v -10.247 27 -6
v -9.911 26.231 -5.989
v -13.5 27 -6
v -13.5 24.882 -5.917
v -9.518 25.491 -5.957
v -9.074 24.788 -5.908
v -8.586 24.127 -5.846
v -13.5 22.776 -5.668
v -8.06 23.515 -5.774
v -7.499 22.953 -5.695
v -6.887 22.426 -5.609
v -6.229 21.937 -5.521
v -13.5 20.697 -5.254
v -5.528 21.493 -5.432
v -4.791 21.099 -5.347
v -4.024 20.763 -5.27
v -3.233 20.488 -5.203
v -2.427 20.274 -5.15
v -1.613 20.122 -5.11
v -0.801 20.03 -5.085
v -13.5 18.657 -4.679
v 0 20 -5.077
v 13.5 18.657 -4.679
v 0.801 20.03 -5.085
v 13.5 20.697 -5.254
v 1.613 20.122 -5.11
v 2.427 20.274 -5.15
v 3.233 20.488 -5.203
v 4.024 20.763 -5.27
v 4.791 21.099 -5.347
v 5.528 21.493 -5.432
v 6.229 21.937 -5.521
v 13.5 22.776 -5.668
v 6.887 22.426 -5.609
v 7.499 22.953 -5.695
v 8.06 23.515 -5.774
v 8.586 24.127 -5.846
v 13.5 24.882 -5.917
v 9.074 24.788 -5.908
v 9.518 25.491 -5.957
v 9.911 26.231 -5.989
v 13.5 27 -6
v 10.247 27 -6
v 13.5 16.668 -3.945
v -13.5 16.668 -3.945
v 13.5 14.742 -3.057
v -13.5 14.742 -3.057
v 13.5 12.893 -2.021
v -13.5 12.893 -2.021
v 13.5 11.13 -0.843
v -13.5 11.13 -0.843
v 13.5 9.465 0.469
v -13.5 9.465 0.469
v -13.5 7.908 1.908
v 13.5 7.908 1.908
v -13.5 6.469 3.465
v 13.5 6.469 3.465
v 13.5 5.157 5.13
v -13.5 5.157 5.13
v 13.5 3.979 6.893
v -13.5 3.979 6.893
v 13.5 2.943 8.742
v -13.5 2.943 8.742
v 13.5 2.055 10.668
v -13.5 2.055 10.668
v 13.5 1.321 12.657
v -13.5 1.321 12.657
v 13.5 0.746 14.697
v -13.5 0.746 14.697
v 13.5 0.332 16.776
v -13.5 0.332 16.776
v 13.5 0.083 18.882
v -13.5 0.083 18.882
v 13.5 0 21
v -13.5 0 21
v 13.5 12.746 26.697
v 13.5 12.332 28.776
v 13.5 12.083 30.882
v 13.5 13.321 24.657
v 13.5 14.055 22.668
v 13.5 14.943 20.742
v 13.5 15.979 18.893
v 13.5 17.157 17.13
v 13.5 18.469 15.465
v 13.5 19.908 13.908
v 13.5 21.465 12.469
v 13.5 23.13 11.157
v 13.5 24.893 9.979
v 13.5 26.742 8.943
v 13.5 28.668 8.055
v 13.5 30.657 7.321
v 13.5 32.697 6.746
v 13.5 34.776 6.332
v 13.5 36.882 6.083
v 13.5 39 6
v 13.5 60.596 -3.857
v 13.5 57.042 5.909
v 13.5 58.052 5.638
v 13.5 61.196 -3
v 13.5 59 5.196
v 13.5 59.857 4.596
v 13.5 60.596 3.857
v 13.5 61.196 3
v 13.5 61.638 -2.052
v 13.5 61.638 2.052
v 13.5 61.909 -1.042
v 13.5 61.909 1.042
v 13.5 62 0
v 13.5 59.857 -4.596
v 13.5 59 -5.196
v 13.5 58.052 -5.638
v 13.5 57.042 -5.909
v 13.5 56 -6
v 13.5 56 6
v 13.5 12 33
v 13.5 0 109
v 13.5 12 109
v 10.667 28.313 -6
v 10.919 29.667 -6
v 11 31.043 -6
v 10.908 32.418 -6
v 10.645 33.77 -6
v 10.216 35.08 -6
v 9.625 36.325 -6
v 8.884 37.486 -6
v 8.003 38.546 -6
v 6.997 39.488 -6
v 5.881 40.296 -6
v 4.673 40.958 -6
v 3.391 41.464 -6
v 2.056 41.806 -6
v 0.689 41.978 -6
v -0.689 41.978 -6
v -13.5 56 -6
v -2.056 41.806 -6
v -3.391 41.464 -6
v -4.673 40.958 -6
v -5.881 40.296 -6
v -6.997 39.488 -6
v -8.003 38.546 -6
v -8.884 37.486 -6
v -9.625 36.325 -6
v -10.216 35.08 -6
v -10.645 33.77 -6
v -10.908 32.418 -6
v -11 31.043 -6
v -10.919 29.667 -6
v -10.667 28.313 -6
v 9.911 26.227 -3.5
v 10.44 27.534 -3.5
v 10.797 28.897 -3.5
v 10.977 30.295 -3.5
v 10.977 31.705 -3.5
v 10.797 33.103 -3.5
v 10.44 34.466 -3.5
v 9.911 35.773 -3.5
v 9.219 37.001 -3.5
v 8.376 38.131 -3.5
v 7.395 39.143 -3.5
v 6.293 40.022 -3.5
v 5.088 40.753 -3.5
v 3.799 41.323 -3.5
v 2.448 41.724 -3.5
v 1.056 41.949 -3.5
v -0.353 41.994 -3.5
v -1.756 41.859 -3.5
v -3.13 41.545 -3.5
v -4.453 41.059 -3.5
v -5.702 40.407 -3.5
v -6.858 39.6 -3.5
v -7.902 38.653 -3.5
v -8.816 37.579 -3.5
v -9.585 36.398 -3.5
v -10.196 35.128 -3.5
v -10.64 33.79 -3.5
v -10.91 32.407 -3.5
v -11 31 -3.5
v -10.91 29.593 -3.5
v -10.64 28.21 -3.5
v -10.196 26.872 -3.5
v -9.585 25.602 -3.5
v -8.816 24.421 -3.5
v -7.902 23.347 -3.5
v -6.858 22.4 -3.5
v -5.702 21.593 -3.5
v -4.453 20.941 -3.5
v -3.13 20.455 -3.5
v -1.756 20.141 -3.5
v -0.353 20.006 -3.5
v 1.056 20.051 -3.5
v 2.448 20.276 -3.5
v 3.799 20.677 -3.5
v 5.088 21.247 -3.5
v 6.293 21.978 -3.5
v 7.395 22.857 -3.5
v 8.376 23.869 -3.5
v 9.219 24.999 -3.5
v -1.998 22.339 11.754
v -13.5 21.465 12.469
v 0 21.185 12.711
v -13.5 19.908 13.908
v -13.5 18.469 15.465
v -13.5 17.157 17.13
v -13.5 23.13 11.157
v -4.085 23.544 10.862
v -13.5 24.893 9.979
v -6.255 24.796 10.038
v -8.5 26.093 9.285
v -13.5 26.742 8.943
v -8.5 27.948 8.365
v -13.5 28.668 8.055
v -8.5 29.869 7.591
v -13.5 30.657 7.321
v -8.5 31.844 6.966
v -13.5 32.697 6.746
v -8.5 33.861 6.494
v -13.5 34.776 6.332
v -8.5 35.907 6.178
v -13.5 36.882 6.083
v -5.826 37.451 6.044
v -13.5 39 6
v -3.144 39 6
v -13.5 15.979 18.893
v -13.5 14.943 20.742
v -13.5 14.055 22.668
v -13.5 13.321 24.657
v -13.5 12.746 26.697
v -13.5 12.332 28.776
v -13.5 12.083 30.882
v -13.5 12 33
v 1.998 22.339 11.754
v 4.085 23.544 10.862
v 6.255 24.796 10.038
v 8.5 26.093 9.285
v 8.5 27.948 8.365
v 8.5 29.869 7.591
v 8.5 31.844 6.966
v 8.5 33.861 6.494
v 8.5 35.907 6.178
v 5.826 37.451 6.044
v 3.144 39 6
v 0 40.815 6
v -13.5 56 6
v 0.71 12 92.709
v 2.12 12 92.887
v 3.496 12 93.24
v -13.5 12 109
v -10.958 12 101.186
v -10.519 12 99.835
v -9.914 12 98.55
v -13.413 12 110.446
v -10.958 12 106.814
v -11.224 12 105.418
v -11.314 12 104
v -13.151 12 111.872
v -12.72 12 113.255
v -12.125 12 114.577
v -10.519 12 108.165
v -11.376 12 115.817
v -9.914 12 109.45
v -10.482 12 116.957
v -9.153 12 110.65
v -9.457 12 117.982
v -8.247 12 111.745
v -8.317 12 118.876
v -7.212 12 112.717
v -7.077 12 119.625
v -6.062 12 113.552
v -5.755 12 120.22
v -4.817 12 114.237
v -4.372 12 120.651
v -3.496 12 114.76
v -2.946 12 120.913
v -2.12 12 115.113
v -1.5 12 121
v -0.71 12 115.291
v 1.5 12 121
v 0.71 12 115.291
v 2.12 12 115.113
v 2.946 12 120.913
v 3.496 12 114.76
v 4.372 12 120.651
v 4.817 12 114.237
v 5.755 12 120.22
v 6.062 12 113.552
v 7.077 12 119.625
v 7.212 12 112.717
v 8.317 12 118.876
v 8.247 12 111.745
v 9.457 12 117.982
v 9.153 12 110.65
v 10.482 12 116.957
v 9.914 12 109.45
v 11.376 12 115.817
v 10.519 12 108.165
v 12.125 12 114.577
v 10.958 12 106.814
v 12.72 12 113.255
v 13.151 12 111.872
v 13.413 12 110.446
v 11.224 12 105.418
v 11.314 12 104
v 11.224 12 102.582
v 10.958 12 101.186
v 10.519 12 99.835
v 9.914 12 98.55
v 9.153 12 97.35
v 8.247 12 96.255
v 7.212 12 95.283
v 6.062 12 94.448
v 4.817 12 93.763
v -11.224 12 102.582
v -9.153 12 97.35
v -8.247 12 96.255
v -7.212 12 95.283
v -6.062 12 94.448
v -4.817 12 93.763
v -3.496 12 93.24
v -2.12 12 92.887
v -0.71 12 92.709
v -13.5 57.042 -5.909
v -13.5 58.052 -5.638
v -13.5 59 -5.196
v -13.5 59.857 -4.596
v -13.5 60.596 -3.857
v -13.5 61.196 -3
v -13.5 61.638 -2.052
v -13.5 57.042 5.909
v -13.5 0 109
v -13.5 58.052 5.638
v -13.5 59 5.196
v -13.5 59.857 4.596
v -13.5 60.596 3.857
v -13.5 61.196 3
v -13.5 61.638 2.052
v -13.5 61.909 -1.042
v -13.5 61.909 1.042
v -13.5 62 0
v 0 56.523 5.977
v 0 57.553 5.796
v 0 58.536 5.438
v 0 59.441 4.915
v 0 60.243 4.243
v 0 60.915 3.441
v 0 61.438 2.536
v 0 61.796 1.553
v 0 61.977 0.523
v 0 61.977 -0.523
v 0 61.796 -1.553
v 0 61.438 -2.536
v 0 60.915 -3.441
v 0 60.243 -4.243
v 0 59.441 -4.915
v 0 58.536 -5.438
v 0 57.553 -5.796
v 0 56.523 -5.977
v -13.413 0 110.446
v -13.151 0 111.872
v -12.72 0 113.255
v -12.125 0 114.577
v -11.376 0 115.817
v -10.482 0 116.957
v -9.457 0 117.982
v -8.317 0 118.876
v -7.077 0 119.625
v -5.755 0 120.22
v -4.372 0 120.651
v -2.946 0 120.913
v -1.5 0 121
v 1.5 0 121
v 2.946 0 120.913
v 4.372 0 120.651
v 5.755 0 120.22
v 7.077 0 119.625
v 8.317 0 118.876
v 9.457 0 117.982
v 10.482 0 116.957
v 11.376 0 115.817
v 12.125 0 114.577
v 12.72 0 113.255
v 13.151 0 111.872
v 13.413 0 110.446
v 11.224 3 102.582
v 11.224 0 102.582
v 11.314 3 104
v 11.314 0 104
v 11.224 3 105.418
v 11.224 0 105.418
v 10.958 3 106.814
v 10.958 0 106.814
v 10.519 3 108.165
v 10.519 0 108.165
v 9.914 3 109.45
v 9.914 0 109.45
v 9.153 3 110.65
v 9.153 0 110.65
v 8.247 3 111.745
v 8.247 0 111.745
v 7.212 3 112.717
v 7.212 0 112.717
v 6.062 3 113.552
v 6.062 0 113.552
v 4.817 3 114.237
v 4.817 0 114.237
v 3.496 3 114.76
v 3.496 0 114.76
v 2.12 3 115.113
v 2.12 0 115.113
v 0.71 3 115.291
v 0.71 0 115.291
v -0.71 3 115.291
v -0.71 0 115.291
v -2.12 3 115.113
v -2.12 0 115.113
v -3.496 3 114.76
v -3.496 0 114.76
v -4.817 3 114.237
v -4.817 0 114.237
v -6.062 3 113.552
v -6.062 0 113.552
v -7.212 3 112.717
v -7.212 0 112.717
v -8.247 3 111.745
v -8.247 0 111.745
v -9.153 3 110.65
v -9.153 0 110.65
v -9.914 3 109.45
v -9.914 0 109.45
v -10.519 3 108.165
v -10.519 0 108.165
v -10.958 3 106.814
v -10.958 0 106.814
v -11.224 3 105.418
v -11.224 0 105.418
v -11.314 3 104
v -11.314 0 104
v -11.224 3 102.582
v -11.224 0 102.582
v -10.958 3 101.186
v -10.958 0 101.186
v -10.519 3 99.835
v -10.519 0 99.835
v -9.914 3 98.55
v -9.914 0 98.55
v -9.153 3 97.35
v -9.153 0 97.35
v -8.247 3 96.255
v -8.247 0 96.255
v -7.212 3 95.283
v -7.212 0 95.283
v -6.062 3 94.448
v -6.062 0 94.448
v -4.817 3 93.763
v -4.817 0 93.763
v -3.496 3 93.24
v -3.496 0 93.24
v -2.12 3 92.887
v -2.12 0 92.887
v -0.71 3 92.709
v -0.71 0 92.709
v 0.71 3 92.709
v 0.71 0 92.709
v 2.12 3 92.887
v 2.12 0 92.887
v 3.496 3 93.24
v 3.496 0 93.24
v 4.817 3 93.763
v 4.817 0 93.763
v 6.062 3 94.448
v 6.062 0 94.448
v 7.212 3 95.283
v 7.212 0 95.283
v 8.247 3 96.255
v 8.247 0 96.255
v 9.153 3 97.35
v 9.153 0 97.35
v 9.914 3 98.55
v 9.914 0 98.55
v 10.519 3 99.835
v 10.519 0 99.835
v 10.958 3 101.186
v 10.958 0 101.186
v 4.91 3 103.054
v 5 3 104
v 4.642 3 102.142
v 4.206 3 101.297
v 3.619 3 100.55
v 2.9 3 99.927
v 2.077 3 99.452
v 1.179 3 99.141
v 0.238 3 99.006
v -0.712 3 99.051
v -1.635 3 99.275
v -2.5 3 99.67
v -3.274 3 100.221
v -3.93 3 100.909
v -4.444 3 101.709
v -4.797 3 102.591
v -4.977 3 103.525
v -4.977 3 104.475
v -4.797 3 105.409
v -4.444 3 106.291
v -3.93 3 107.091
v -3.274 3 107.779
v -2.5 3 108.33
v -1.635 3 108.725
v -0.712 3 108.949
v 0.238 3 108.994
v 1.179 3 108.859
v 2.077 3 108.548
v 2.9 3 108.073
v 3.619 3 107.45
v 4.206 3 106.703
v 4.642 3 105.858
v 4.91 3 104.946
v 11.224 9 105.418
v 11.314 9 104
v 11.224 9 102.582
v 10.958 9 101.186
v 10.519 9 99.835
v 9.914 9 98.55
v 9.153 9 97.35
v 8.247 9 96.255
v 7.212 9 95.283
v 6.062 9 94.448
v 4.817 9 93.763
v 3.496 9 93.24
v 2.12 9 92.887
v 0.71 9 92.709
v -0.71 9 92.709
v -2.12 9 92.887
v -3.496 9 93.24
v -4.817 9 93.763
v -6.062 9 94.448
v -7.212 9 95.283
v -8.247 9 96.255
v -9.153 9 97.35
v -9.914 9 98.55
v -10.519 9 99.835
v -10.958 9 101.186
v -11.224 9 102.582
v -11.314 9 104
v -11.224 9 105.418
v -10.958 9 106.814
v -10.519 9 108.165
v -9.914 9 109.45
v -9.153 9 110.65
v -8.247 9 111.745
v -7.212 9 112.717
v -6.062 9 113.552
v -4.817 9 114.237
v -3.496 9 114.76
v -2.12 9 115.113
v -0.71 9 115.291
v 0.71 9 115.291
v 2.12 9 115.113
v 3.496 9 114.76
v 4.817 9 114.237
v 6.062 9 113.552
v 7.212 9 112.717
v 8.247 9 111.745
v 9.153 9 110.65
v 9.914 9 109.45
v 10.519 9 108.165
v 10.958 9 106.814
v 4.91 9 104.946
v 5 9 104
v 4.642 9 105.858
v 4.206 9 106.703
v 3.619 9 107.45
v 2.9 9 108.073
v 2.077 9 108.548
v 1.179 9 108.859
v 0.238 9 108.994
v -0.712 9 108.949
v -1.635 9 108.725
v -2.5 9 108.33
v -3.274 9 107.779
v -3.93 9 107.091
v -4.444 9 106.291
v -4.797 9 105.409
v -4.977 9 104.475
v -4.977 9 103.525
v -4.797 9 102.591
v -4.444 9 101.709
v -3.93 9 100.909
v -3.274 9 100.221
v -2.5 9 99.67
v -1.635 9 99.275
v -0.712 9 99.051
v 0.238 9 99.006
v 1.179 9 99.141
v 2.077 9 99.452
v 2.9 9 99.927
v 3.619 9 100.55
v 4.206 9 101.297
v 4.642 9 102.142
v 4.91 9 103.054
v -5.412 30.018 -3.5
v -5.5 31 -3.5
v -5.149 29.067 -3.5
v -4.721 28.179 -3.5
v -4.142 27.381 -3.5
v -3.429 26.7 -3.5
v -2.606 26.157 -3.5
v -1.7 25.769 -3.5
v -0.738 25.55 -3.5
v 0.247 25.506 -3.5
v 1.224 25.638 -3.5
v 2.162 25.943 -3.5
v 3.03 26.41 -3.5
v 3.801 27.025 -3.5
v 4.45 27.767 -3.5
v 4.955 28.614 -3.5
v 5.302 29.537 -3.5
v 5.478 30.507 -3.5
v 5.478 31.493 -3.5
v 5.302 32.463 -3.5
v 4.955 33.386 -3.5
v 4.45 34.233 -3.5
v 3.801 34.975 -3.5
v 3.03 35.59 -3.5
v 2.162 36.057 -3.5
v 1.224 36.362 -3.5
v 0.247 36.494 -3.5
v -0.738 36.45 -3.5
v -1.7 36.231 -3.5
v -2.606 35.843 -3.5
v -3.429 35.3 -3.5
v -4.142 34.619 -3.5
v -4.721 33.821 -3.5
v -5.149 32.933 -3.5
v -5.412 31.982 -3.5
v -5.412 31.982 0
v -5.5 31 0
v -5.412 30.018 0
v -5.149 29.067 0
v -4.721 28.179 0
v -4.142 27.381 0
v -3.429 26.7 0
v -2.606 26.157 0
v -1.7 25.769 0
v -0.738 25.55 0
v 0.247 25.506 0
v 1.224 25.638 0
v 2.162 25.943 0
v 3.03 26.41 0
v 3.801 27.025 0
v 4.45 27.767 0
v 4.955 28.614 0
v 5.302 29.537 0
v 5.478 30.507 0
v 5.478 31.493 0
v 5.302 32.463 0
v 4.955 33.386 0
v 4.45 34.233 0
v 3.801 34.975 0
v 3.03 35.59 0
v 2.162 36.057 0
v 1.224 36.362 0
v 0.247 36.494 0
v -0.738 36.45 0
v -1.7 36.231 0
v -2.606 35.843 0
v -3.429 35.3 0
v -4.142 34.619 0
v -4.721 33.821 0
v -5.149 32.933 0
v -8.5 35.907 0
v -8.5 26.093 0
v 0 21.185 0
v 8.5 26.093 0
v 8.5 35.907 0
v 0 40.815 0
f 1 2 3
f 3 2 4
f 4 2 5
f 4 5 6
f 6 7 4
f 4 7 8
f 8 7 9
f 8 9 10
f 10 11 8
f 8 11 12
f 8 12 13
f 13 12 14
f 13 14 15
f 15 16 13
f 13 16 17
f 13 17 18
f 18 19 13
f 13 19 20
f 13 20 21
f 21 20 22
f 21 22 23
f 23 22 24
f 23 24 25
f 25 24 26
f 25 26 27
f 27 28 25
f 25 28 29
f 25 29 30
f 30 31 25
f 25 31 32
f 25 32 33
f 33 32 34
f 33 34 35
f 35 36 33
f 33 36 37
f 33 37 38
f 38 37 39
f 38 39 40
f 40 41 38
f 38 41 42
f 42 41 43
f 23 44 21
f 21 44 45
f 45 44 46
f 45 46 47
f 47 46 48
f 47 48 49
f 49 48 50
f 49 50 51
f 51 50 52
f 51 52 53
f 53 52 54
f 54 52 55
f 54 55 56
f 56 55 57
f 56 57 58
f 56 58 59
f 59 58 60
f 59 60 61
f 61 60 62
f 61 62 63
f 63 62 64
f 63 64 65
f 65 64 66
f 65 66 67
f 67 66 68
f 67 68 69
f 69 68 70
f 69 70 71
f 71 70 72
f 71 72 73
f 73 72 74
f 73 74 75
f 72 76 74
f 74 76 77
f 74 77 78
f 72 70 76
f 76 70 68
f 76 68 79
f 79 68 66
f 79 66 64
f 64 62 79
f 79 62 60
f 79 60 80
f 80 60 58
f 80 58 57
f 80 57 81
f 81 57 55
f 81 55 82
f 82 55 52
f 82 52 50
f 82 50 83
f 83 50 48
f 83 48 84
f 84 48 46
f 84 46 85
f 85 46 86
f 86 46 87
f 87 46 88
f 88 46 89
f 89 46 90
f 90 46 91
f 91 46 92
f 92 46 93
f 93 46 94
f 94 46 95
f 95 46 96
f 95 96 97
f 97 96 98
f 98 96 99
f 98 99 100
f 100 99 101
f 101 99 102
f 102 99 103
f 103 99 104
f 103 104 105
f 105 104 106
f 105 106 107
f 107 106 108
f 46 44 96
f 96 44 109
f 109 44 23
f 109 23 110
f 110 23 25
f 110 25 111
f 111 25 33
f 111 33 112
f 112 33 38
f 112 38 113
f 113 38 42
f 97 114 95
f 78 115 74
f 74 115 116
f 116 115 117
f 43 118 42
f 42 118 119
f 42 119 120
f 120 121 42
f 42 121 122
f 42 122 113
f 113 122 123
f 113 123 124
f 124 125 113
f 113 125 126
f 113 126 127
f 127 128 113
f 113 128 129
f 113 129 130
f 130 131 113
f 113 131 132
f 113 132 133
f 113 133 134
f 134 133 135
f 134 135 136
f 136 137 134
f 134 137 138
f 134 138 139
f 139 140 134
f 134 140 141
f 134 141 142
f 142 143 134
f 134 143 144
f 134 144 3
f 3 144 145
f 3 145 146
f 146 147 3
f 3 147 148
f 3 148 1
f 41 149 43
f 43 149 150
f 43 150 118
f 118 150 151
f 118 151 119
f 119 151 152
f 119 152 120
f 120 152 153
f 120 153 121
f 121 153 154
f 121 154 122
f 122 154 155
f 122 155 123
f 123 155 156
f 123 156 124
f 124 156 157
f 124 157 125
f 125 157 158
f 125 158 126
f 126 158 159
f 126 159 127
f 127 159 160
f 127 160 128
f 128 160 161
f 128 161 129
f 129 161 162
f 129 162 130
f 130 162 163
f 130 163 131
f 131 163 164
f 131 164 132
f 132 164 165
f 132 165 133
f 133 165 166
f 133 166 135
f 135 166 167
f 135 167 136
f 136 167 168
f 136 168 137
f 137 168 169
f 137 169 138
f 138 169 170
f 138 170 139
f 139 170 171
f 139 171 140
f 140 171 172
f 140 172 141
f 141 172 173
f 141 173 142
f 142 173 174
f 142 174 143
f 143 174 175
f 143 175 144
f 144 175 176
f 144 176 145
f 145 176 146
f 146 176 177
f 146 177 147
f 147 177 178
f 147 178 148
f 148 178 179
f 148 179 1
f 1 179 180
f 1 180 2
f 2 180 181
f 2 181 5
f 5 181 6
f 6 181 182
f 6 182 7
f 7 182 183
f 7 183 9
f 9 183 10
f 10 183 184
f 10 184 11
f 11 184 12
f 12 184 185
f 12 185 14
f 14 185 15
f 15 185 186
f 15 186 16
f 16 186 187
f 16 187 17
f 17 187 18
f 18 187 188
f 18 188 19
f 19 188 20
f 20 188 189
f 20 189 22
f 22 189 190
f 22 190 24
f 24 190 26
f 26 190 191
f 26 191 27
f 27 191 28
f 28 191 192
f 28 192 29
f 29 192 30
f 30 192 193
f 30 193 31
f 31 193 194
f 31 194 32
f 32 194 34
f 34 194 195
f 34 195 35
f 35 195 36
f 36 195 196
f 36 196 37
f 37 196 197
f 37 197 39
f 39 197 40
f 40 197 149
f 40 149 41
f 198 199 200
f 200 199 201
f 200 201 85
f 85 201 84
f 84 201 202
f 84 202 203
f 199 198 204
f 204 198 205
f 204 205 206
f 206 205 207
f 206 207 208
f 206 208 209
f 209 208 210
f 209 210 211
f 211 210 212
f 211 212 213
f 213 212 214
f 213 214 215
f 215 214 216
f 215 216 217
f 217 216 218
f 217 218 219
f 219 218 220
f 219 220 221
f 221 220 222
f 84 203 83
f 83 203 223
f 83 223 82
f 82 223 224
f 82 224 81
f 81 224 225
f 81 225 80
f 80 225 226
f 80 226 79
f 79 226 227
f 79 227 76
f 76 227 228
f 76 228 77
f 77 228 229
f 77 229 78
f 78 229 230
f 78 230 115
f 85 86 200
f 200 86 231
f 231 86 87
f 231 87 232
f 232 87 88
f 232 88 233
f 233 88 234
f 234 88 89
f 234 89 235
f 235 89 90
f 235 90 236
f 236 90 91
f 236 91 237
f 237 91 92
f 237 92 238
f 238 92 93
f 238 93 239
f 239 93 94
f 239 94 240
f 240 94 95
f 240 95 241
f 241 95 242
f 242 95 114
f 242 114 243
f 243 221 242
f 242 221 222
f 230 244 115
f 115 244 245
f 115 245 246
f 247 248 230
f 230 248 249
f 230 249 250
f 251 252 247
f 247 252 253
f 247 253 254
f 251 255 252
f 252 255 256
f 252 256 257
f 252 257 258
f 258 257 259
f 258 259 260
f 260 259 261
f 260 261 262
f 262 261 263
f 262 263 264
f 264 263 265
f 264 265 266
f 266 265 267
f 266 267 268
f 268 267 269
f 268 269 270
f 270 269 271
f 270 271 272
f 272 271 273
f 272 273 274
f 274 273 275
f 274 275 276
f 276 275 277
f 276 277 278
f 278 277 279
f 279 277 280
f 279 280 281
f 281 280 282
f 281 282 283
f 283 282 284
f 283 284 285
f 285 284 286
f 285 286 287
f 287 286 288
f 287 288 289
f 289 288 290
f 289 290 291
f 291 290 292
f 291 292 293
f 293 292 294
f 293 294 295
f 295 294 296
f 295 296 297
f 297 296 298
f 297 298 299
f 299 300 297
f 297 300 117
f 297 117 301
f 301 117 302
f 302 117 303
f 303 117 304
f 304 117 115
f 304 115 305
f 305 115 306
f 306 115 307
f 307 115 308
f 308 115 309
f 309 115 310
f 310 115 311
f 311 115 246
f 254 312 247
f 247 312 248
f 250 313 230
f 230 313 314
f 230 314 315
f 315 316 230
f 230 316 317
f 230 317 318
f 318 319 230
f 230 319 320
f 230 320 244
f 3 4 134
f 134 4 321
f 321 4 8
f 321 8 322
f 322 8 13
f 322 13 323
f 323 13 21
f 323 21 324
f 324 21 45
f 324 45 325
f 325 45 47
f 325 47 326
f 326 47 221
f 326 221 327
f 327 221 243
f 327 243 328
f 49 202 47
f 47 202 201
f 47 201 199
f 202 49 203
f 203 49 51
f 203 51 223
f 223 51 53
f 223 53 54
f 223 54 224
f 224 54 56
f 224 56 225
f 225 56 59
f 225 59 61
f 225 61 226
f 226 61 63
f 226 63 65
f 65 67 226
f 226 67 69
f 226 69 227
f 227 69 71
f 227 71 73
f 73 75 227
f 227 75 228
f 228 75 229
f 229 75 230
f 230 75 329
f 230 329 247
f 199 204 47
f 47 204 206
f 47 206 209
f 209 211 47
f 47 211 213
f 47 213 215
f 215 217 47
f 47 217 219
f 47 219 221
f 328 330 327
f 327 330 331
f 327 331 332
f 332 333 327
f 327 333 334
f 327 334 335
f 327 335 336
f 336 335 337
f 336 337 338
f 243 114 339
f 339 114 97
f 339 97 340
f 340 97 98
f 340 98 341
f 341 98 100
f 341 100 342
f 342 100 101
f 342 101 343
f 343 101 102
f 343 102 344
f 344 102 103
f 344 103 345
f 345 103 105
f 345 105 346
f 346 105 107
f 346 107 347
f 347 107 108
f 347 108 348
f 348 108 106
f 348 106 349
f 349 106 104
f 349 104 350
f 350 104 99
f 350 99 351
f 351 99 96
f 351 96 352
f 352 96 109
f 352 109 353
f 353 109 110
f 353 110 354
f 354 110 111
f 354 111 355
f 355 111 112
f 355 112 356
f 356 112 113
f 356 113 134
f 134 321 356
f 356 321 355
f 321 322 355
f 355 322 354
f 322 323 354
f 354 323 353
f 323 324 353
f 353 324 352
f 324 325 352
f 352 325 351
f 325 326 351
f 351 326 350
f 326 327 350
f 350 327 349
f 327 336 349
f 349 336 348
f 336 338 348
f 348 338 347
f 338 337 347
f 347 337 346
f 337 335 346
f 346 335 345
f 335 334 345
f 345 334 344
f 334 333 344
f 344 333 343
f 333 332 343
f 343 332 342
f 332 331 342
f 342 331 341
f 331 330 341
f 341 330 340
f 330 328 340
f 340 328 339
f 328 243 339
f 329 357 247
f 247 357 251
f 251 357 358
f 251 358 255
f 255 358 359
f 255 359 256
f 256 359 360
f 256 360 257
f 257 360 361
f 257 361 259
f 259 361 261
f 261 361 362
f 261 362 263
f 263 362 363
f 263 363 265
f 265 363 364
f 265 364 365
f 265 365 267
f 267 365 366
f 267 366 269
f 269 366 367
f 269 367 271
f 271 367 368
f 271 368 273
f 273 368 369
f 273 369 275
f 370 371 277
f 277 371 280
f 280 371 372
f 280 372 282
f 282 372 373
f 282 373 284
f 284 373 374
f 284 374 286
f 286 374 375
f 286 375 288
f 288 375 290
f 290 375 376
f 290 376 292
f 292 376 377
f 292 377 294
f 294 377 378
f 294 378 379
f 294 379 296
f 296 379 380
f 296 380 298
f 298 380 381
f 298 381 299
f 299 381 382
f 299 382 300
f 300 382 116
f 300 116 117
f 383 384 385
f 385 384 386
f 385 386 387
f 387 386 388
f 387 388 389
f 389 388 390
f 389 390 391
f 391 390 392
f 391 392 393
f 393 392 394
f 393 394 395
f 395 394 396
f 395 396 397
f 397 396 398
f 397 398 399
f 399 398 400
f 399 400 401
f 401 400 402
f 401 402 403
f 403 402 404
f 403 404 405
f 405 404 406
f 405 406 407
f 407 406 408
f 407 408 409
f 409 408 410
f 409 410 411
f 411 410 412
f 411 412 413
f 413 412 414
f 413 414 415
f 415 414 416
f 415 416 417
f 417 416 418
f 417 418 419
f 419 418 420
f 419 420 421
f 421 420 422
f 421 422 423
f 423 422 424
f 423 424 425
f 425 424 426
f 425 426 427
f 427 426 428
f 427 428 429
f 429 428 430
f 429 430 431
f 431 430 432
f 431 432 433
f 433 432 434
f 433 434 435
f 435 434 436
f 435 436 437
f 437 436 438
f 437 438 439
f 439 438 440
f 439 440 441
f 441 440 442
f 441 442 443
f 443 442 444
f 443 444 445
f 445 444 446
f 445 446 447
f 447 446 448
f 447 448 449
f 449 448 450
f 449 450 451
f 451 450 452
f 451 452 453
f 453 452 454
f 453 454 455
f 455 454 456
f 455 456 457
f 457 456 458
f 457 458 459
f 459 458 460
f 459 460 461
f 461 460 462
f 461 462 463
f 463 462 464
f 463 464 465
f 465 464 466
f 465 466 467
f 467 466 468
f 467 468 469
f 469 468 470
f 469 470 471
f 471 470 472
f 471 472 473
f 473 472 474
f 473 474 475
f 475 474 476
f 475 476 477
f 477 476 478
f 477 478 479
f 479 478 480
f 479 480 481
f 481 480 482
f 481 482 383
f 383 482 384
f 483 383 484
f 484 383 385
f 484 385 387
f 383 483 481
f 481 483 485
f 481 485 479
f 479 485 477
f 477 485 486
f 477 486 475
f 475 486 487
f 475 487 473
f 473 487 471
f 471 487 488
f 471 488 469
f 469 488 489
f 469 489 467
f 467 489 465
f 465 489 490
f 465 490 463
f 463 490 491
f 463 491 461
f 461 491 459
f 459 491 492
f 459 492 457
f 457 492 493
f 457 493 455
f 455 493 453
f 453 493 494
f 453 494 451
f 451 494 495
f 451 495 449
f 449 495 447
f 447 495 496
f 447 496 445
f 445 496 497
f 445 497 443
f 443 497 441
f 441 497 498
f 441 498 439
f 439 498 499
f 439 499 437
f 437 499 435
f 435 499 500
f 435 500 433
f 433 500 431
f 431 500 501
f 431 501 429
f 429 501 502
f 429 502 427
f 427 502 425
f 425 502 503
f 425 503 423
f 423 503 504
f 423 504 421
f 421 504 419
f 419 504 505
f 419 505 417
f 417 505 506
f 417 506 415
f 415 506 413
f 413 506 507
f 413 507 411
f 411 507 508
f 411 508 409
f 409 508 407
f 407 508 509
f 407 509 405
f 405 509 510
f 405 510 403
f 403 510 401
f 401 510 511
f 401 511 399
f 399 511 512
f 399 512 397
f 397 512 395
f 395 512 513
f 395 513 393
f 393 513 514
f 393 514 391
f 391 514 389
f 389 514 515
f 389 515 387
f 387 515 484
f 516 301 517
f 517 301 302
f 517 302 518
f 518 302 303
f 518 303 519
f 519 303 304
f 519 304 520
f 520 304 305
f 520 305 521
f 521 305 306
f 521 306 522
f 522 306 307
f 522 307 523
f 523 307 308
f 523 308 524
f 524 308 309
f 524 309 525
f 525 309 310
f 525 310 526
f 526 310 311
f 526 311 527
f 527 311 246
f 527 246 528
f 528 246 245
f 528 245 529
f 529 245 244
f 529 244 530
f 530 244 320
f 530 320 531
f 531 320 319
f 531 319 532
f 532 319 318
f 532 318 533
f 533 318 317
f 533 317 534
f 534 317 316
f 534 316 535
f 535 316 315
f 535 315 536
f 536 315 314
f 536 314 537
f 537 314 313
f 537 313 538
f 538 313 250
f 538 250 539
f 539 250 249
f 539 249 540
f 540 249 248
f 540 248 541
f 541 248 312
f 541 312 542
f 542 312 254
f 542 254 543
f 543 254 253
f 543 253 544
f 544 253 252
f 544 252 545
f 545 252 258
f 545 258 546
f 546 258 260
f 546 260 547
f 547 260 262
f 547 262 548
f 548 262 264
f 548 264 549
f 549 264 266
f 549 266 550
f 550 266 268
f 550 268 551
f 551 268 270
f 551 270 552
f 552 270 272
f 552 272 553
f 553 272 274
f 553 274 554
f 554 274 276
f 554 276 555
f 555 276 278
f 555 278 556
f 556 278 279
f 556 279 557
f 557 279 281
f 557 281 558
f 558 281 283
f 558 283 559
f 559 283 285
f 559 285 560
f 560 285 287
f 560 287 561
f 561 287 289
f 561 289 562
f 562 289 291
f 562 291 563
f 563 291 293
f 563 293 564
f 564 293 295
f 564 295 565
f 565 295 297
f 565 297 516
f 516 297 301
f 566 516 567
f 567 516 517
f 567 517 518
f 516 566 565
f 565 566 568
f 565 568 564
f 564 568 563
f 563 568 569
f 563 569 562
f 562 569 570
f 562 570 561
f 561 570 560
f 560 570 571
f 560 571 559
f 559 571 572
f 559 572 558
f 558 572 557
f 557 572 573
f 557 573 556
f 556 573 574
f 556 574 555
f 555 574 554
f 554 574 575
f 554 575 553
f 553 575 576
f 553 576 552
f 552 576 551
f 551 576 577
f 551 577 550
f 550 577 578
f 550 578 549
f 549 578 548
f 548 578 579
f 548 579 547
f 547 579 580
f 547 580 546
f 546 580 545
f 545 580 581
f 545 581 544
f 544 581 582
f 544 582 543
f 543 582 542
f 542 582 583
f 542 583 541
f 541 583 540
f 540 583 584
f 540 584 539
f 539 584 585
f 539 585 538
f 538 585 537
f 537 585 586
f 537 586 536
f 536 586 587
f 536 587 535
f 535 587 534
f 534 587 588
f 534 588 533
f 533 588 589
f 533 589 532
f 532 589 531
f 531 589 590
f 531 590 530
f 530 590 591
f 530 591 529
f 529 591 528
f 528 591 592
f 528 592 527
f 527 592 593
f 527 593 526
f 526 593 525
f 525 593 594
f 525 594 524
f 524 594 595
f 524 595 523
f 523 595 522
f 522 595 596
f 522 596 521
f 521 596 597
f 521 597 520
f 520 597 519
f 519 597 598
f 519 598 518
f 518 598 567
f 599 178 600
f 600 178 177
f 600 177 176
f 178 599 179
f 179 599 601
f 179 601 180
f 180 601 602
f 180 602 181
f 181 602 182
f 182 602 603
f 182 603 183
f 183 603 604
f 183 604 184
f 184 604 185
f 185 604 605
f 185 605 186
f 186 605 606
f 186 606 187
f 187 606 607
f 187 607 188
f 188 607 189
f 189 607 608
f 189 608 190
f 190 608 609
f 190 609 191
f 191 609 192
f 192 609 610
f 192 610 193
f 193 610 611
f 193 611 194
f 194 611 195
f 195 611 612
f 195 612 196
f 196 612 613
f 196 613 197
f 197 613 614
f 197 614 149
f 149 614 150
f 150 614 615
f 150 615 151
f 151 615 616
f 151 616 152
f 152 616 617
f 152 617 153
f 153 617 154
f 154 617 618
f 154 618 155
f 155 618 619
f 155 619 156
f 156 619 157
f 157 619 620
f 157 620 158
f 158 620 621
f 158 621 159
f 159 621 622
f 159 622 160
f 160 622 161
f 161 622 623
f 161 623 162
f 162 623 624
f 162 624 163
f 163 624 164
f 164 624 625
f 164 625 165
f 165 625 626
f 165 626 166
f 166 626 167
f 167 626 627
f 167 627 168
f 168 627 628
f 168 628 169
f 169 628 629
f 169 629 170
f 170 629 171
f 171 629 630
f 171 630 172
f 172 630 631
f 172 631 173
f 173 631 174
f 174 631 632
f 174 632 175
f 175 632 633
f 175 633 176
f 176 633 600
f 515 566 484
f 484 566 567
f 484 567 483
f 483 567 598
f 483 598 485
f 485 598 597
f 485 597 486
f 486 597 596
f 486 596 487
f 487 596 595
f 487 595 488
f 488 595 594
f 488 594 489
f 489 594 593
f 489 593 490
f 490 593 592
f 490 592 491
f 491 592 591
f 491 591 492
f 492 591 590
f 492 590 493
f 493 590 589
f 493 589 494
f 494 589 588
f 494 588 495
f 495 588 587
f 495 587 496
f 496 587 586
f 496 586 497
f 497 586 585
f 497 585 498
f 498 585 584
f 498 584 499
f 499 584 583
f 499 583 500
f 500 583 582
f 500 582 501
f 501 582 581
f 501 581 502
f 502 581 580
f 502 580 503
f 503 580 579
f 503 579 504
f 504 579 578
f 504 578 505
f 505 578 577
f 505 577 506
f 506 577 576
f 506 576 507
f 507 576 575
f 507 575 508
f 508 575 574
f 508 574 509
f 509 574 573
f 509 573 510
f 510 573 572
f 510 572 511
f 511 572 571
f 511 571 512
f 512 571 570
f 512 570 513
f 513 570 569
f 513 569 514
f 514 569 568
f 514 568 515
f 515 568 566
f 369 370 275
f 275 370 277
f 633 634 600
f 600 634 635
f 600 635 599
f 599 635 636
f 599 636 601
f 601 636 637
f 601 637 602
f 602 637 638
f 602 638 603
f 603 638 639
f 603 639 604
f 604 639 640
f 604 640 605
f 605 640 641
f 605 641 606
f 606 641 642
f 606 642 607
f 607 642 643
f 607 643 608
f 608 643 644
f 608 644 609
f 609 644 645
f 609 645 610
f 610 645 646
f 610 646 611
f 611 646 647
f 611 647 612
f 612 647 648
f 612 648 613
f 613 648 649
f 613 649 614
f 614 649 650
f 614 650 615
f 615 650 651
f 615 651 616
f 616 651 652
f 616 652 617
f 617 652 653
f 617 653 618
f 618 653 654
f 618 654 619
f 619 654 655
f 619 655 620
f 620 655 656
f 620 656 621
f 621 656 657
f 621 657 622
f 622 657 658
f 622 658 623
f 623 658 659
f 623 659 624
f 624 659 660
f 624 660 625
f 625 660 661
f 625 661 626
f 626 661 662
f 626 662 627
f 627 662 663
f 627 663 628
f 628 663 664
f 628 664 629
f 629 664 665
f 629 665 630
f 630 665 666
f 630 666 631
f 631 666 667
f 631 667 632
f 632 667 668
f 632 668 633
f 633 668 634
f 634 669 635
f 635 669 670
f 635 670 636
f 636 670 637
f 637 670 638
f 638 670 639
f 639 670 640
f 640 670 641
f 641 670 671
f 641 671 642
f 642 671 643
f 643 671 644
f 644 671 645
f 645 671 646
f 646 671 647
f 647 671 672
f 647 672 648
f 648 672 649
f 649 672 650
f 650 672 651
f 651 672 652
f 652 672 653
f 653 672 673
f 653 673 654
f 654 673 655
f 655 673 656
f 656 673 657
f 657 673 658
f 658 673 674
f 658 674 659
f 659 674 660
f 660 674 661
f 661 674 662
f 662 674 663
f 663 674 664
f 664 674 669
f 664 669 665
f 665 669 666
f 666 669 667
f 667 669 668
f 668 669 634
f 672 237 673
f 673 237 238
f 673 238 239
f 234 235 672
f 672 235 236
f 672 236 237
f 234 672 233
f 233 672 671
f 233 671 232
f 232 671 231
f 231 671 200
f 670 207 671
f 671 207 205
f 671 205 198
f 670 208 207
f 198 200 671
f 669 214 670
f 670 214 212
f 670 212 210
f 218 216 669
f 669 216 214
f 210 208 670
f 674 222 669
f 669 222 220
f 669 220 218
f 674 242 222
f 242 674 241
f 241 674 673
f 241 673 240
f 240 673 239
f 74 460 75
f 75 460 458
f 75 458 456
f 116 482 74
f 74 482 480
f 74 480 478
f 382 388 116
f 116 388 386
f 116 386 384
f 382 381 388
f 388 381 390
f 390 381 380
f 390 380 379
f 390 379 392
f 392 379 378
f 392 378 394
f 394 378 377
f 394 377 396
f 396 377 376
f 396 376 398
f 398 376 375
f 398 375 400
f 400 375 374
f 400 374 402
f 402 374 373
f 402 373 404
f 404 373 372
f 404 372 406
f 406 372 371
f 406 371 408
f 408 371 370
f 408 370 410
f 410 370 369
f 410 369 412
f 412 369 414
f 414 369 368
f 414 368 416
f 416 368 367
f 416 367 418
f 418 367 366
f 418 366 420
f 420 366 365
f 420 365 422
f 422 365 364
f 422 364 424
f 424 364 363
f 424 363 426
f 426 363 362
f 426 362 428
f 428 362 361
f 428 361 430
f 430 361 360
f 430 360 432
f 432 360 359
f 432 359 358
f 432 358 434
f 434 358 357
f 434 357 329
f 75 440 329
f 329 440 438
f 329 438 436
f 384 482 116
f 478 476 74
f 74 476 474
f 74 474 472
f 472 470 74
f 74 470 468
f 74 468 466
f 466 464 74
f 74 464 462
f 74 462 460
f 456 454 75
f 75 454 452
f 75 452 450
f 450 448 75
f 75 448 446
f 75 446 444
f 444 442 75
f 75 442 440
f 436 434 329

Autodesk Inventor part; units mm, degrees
ref_plane "YZ Plane" through (0, 0, 0) normal (1, 0, 0) x (0, 1, 0)
ref_plane "XZ Plane" through (0, 0, 0) normal (0, 1, 0) x (-1, 0, 0)
ref_plane "XY Plane" through (0, 0, 0) normal (0, 0, 1) x (1, 0, 0)
sketch "Boceto1" plane through (0, 0, 0) normal (0, 0, 1) x (1, 0, 0)
  line L0 (-13.5, 62) -> (13.5, 62)
  line L1 (13.5, 62) -> (13.5, 0)
  line L2 (13.5, 0) -> (-13.5, 0)
  line L3 (-13.5, 0) -> (-13.5, 62)
  line L4 (0, 0) -> (0, 62) construction
  line L5 (0, 40.815) -> (8.5, 35.9075)
  line L6 (8.5, 35.9075) -> (8.5, 26.0925)
  line L7 (8.5, 26.0925) -> (0, 21.185)
  line L8 (0, 21.185) -> (-8.5, 26.0925)
  line L9 (-8.5, 26.0925) -> (-8.5, 35.9075)
  line L10 (-8.5, 35.9075) -> (0, 40.815)
  line L11 (-8.5, 35.9075) -> (-13.5, 35.9075) construction
  line L12 (8.5, 35.9075) -> (13.5, 35.9075) construction
  point P0 (0, 31)
  dimension "d20" = 17
  dimension "d21" = 5
  dimension "d22" = 27
  dimension "d23" = 62
extrude "Extrusión1" add sketch "Boceto1" along normal blind 6
sketch "Boceto2" plane through (0, 0, 0) normal (0, 0, -1) x (-1, 0, 0)
  line L0 (-8.5, 26.0925) -> (-8.5, 35.9075) projected
  line L1 (-8.5, 35.9075) -> (0, 40.815) projected
  line L2 (0, 40.815) -> (8.5, 35.9075) projected
  line L3 (8.5, 35.9075) -> (8.5, 26.0925) projected
  line L4 (8.5, 26.0925) -> (0, 21.185) projected
  line L5 (0, 21.185) -> (-8.5, 26.0925) projected
  line L6 (13.5, 62) -> (-13.5, 62) projected
  line L7 (-13.5, 62) -> (-13.5, 0) projected
  line L8 (-13.5, 0) -> (13.5, 0) projected
  line L9 (13.5, 0) -> (13.5, 62) projected
  point P0 (0, 0)
extrude "Extrusión2" add sketch "Boceto2" along normal blind 6 contours L0 L1 L2 L3 L4 L5 | L9 L8 L7 L6
sketch "Boceto3" plane through (0, 0, -6) normal (0, 0, -1) x (-1, 0, 0)
  line L0 (0, 0) -> (0, 62) construction
  line L1 (-13.5, 62) -> (13.5, 62) projected
  circle A0 centre (0, 31) radius 5.5
  dimension "d18" = 11
extrude "Extrusión3" cut sketch "Boceto3" against normal up to next
sketch "Boceto5" plane through (0, 0, 6) normal (0, 0, 1) x (1, 0, 0)
  line L0 (-13.5, 0) -> (-13.5, 62) projected
  line L1 (13.5, 62) -> (13.5, 0) projected
  line L2 (-13.5, 0) -> (13.5, 0)
  line L3 (13.5, 0) -> (13.5, 12)
  line L4 (13.5, 12) -> (-13.5, 12)
  line L5 (-13.5, 12) -> (-13.5, 0)
  line L6 (13.5, 62) -> (-13.5, 62) projected
  line L7 (-13.5, 62) -> (13.5, 62)
  line L8 (13.5, 62) -> (13.5, 50)
  line L9 (13.5, 50) -> (-13.5, 50)
  line L10 (-13.5, 50) -> (-13.5, 62)
  line L11 (-17.3027, 31) -> (12.0796, 31) construction
  line L12 (-8.5, 26.0925) -> (-8.5, 35.9075) projected
  point P0 (0, 0)
  point P1 (-8.5, 31)
  dimension "d24" = 12
extrude "Extrusión4" add sketch "Boceto5" along normal blind 115 contours L0 L4 L1 L2 | L0 L6 L1 L9
sketch "Boceto9" plane through (-13.5, 0, -6) normal (0, -1, 0) x (1, 0, 0)
  circle A0 centre (13.5, 110) radius 5
  line L0 (0, 127) -> (27, 127) projected
  line L1 (13.5, 110) -> (13.5, 115)
  line L2 (13.5, 115) -> (13.5, 127)
  line L3 (0, 127) -> (27, 127) projected
  point P0 (13.5, 6)
  dimension "d25" = 10
  dimension "d32" = 12
extrude "Extrusión8" cut sketch "Boceto9" against normal up to surface (12 mm away)
sketch "Boceto10" plane through (0, 0, -6) normal (0, 0, -1) x (-1, 0, 0)
  circle A0 centre (0, 31) radius 11
  circle A1 centre (0, 31) radius 5.5 projected
  point P0 (0, 0)
  dimension "d29" = 22
extrude "Extrusión9" cut sketch "Boceto10" against normal blind 2.5
sketch "Boceto11" plane through (-13.5, 12, 6) normal (0, 1, 0) x (1, 0, 0)
  line L0 (21.5, -106) -> (5.5, -106) construction
  line L1 (5.5, -106) -> (5.5, -90) construction
  line L2 (5.5, -90) -> (21.5, -90) construction
  line L3 (21.5, -90) -> (21.5, -106) construction
  line L4 (5.5, -106) -> (21.5, -90) construction
  circle A0 centre (13.5, -98) radius 8 construction
  circle A1 centre (13.5, -98) radius 11.3137
  line L5 (27, 0) -> (27, -115) projected
  circle A2 centre (13.5, -98) radius 5 projected
  point P0 (13.5, 6)
  dimension "d45" = 16
extrude "Extrusión10" cut sketch "Boceto11" against normal blind 3 contours A1 | A2
sketch "Boceto12" plane through (-13.5, 0, -6) normal (0, -1, 0) x (1, 0, 0)
  circle A0 centre (13.5, 110) radius 11.3137 projected
  line L0 (0, 127) -> (0, 0) projected
  point P0 (13.5, 6)
extrude "Extrusión11" cut sketch "Boceto12" against normal blind 3
sketch "Boceto14" plane through (-13.5, 62, -6) normal (0, 1, 0) x (1, 0, 0)
  circle A0 centre (13.5, -110) radius 5 projected
  circle A1 centre (13.5, -110) radius 5
  point P0 (13.5, -6)
  dimension "d38" = 10
extrude "Extrusión12" cut sketch "Boceto14" against normal up to next
sketch "Boceto15" plane through (-13.5, 50, 6) normal (0, -1, 0) x (1, 0, 0)
  circle A0 centre (13.5, 98) radius 5 projected
  circle A1 centre (13.5, 98) radius 12
  point P0 (13.5, -6)
  dimension "d41" = 24
extrude "Extrusión13" cut sketch "Boceto15" against normal blind 8
fillet "Empalme4" radius 12 4 edges at (13.5, 56, 121) (-13.5, 56, 121) (13.5, 6, 121) (-13.5, 6, 121)
sketch "Boceto17" plane through (13.5, 12, 6) normal (1, 0, 0) x (0, 0, -1)
  line L0 (-103, 38) -> (-115, 38) projected
  line L1 (-103, 50) -> (12, 50) projected
  line L2 (-115, 38) -> (0, 38)
  line L3 (0, 38) -> (0, 50)
  line L4 (0, 50) -> (-115, 50)
  line L5 (-115, 50) -> (-115, 38)
  point P0 (6, -12)
extrude "Extrusión14" cut sketch "Boceto17" against normal up to next
fillet "Empalme7" radius 6 2 edges at (0, 62, -6) (0, 62, 6)
fillet "Empalme8" radius 27 1 edges at (0, 12, 6)
fillet "Empalme9" radius 27 1 edges at (0, 0, -6)
properties part number "U2"
